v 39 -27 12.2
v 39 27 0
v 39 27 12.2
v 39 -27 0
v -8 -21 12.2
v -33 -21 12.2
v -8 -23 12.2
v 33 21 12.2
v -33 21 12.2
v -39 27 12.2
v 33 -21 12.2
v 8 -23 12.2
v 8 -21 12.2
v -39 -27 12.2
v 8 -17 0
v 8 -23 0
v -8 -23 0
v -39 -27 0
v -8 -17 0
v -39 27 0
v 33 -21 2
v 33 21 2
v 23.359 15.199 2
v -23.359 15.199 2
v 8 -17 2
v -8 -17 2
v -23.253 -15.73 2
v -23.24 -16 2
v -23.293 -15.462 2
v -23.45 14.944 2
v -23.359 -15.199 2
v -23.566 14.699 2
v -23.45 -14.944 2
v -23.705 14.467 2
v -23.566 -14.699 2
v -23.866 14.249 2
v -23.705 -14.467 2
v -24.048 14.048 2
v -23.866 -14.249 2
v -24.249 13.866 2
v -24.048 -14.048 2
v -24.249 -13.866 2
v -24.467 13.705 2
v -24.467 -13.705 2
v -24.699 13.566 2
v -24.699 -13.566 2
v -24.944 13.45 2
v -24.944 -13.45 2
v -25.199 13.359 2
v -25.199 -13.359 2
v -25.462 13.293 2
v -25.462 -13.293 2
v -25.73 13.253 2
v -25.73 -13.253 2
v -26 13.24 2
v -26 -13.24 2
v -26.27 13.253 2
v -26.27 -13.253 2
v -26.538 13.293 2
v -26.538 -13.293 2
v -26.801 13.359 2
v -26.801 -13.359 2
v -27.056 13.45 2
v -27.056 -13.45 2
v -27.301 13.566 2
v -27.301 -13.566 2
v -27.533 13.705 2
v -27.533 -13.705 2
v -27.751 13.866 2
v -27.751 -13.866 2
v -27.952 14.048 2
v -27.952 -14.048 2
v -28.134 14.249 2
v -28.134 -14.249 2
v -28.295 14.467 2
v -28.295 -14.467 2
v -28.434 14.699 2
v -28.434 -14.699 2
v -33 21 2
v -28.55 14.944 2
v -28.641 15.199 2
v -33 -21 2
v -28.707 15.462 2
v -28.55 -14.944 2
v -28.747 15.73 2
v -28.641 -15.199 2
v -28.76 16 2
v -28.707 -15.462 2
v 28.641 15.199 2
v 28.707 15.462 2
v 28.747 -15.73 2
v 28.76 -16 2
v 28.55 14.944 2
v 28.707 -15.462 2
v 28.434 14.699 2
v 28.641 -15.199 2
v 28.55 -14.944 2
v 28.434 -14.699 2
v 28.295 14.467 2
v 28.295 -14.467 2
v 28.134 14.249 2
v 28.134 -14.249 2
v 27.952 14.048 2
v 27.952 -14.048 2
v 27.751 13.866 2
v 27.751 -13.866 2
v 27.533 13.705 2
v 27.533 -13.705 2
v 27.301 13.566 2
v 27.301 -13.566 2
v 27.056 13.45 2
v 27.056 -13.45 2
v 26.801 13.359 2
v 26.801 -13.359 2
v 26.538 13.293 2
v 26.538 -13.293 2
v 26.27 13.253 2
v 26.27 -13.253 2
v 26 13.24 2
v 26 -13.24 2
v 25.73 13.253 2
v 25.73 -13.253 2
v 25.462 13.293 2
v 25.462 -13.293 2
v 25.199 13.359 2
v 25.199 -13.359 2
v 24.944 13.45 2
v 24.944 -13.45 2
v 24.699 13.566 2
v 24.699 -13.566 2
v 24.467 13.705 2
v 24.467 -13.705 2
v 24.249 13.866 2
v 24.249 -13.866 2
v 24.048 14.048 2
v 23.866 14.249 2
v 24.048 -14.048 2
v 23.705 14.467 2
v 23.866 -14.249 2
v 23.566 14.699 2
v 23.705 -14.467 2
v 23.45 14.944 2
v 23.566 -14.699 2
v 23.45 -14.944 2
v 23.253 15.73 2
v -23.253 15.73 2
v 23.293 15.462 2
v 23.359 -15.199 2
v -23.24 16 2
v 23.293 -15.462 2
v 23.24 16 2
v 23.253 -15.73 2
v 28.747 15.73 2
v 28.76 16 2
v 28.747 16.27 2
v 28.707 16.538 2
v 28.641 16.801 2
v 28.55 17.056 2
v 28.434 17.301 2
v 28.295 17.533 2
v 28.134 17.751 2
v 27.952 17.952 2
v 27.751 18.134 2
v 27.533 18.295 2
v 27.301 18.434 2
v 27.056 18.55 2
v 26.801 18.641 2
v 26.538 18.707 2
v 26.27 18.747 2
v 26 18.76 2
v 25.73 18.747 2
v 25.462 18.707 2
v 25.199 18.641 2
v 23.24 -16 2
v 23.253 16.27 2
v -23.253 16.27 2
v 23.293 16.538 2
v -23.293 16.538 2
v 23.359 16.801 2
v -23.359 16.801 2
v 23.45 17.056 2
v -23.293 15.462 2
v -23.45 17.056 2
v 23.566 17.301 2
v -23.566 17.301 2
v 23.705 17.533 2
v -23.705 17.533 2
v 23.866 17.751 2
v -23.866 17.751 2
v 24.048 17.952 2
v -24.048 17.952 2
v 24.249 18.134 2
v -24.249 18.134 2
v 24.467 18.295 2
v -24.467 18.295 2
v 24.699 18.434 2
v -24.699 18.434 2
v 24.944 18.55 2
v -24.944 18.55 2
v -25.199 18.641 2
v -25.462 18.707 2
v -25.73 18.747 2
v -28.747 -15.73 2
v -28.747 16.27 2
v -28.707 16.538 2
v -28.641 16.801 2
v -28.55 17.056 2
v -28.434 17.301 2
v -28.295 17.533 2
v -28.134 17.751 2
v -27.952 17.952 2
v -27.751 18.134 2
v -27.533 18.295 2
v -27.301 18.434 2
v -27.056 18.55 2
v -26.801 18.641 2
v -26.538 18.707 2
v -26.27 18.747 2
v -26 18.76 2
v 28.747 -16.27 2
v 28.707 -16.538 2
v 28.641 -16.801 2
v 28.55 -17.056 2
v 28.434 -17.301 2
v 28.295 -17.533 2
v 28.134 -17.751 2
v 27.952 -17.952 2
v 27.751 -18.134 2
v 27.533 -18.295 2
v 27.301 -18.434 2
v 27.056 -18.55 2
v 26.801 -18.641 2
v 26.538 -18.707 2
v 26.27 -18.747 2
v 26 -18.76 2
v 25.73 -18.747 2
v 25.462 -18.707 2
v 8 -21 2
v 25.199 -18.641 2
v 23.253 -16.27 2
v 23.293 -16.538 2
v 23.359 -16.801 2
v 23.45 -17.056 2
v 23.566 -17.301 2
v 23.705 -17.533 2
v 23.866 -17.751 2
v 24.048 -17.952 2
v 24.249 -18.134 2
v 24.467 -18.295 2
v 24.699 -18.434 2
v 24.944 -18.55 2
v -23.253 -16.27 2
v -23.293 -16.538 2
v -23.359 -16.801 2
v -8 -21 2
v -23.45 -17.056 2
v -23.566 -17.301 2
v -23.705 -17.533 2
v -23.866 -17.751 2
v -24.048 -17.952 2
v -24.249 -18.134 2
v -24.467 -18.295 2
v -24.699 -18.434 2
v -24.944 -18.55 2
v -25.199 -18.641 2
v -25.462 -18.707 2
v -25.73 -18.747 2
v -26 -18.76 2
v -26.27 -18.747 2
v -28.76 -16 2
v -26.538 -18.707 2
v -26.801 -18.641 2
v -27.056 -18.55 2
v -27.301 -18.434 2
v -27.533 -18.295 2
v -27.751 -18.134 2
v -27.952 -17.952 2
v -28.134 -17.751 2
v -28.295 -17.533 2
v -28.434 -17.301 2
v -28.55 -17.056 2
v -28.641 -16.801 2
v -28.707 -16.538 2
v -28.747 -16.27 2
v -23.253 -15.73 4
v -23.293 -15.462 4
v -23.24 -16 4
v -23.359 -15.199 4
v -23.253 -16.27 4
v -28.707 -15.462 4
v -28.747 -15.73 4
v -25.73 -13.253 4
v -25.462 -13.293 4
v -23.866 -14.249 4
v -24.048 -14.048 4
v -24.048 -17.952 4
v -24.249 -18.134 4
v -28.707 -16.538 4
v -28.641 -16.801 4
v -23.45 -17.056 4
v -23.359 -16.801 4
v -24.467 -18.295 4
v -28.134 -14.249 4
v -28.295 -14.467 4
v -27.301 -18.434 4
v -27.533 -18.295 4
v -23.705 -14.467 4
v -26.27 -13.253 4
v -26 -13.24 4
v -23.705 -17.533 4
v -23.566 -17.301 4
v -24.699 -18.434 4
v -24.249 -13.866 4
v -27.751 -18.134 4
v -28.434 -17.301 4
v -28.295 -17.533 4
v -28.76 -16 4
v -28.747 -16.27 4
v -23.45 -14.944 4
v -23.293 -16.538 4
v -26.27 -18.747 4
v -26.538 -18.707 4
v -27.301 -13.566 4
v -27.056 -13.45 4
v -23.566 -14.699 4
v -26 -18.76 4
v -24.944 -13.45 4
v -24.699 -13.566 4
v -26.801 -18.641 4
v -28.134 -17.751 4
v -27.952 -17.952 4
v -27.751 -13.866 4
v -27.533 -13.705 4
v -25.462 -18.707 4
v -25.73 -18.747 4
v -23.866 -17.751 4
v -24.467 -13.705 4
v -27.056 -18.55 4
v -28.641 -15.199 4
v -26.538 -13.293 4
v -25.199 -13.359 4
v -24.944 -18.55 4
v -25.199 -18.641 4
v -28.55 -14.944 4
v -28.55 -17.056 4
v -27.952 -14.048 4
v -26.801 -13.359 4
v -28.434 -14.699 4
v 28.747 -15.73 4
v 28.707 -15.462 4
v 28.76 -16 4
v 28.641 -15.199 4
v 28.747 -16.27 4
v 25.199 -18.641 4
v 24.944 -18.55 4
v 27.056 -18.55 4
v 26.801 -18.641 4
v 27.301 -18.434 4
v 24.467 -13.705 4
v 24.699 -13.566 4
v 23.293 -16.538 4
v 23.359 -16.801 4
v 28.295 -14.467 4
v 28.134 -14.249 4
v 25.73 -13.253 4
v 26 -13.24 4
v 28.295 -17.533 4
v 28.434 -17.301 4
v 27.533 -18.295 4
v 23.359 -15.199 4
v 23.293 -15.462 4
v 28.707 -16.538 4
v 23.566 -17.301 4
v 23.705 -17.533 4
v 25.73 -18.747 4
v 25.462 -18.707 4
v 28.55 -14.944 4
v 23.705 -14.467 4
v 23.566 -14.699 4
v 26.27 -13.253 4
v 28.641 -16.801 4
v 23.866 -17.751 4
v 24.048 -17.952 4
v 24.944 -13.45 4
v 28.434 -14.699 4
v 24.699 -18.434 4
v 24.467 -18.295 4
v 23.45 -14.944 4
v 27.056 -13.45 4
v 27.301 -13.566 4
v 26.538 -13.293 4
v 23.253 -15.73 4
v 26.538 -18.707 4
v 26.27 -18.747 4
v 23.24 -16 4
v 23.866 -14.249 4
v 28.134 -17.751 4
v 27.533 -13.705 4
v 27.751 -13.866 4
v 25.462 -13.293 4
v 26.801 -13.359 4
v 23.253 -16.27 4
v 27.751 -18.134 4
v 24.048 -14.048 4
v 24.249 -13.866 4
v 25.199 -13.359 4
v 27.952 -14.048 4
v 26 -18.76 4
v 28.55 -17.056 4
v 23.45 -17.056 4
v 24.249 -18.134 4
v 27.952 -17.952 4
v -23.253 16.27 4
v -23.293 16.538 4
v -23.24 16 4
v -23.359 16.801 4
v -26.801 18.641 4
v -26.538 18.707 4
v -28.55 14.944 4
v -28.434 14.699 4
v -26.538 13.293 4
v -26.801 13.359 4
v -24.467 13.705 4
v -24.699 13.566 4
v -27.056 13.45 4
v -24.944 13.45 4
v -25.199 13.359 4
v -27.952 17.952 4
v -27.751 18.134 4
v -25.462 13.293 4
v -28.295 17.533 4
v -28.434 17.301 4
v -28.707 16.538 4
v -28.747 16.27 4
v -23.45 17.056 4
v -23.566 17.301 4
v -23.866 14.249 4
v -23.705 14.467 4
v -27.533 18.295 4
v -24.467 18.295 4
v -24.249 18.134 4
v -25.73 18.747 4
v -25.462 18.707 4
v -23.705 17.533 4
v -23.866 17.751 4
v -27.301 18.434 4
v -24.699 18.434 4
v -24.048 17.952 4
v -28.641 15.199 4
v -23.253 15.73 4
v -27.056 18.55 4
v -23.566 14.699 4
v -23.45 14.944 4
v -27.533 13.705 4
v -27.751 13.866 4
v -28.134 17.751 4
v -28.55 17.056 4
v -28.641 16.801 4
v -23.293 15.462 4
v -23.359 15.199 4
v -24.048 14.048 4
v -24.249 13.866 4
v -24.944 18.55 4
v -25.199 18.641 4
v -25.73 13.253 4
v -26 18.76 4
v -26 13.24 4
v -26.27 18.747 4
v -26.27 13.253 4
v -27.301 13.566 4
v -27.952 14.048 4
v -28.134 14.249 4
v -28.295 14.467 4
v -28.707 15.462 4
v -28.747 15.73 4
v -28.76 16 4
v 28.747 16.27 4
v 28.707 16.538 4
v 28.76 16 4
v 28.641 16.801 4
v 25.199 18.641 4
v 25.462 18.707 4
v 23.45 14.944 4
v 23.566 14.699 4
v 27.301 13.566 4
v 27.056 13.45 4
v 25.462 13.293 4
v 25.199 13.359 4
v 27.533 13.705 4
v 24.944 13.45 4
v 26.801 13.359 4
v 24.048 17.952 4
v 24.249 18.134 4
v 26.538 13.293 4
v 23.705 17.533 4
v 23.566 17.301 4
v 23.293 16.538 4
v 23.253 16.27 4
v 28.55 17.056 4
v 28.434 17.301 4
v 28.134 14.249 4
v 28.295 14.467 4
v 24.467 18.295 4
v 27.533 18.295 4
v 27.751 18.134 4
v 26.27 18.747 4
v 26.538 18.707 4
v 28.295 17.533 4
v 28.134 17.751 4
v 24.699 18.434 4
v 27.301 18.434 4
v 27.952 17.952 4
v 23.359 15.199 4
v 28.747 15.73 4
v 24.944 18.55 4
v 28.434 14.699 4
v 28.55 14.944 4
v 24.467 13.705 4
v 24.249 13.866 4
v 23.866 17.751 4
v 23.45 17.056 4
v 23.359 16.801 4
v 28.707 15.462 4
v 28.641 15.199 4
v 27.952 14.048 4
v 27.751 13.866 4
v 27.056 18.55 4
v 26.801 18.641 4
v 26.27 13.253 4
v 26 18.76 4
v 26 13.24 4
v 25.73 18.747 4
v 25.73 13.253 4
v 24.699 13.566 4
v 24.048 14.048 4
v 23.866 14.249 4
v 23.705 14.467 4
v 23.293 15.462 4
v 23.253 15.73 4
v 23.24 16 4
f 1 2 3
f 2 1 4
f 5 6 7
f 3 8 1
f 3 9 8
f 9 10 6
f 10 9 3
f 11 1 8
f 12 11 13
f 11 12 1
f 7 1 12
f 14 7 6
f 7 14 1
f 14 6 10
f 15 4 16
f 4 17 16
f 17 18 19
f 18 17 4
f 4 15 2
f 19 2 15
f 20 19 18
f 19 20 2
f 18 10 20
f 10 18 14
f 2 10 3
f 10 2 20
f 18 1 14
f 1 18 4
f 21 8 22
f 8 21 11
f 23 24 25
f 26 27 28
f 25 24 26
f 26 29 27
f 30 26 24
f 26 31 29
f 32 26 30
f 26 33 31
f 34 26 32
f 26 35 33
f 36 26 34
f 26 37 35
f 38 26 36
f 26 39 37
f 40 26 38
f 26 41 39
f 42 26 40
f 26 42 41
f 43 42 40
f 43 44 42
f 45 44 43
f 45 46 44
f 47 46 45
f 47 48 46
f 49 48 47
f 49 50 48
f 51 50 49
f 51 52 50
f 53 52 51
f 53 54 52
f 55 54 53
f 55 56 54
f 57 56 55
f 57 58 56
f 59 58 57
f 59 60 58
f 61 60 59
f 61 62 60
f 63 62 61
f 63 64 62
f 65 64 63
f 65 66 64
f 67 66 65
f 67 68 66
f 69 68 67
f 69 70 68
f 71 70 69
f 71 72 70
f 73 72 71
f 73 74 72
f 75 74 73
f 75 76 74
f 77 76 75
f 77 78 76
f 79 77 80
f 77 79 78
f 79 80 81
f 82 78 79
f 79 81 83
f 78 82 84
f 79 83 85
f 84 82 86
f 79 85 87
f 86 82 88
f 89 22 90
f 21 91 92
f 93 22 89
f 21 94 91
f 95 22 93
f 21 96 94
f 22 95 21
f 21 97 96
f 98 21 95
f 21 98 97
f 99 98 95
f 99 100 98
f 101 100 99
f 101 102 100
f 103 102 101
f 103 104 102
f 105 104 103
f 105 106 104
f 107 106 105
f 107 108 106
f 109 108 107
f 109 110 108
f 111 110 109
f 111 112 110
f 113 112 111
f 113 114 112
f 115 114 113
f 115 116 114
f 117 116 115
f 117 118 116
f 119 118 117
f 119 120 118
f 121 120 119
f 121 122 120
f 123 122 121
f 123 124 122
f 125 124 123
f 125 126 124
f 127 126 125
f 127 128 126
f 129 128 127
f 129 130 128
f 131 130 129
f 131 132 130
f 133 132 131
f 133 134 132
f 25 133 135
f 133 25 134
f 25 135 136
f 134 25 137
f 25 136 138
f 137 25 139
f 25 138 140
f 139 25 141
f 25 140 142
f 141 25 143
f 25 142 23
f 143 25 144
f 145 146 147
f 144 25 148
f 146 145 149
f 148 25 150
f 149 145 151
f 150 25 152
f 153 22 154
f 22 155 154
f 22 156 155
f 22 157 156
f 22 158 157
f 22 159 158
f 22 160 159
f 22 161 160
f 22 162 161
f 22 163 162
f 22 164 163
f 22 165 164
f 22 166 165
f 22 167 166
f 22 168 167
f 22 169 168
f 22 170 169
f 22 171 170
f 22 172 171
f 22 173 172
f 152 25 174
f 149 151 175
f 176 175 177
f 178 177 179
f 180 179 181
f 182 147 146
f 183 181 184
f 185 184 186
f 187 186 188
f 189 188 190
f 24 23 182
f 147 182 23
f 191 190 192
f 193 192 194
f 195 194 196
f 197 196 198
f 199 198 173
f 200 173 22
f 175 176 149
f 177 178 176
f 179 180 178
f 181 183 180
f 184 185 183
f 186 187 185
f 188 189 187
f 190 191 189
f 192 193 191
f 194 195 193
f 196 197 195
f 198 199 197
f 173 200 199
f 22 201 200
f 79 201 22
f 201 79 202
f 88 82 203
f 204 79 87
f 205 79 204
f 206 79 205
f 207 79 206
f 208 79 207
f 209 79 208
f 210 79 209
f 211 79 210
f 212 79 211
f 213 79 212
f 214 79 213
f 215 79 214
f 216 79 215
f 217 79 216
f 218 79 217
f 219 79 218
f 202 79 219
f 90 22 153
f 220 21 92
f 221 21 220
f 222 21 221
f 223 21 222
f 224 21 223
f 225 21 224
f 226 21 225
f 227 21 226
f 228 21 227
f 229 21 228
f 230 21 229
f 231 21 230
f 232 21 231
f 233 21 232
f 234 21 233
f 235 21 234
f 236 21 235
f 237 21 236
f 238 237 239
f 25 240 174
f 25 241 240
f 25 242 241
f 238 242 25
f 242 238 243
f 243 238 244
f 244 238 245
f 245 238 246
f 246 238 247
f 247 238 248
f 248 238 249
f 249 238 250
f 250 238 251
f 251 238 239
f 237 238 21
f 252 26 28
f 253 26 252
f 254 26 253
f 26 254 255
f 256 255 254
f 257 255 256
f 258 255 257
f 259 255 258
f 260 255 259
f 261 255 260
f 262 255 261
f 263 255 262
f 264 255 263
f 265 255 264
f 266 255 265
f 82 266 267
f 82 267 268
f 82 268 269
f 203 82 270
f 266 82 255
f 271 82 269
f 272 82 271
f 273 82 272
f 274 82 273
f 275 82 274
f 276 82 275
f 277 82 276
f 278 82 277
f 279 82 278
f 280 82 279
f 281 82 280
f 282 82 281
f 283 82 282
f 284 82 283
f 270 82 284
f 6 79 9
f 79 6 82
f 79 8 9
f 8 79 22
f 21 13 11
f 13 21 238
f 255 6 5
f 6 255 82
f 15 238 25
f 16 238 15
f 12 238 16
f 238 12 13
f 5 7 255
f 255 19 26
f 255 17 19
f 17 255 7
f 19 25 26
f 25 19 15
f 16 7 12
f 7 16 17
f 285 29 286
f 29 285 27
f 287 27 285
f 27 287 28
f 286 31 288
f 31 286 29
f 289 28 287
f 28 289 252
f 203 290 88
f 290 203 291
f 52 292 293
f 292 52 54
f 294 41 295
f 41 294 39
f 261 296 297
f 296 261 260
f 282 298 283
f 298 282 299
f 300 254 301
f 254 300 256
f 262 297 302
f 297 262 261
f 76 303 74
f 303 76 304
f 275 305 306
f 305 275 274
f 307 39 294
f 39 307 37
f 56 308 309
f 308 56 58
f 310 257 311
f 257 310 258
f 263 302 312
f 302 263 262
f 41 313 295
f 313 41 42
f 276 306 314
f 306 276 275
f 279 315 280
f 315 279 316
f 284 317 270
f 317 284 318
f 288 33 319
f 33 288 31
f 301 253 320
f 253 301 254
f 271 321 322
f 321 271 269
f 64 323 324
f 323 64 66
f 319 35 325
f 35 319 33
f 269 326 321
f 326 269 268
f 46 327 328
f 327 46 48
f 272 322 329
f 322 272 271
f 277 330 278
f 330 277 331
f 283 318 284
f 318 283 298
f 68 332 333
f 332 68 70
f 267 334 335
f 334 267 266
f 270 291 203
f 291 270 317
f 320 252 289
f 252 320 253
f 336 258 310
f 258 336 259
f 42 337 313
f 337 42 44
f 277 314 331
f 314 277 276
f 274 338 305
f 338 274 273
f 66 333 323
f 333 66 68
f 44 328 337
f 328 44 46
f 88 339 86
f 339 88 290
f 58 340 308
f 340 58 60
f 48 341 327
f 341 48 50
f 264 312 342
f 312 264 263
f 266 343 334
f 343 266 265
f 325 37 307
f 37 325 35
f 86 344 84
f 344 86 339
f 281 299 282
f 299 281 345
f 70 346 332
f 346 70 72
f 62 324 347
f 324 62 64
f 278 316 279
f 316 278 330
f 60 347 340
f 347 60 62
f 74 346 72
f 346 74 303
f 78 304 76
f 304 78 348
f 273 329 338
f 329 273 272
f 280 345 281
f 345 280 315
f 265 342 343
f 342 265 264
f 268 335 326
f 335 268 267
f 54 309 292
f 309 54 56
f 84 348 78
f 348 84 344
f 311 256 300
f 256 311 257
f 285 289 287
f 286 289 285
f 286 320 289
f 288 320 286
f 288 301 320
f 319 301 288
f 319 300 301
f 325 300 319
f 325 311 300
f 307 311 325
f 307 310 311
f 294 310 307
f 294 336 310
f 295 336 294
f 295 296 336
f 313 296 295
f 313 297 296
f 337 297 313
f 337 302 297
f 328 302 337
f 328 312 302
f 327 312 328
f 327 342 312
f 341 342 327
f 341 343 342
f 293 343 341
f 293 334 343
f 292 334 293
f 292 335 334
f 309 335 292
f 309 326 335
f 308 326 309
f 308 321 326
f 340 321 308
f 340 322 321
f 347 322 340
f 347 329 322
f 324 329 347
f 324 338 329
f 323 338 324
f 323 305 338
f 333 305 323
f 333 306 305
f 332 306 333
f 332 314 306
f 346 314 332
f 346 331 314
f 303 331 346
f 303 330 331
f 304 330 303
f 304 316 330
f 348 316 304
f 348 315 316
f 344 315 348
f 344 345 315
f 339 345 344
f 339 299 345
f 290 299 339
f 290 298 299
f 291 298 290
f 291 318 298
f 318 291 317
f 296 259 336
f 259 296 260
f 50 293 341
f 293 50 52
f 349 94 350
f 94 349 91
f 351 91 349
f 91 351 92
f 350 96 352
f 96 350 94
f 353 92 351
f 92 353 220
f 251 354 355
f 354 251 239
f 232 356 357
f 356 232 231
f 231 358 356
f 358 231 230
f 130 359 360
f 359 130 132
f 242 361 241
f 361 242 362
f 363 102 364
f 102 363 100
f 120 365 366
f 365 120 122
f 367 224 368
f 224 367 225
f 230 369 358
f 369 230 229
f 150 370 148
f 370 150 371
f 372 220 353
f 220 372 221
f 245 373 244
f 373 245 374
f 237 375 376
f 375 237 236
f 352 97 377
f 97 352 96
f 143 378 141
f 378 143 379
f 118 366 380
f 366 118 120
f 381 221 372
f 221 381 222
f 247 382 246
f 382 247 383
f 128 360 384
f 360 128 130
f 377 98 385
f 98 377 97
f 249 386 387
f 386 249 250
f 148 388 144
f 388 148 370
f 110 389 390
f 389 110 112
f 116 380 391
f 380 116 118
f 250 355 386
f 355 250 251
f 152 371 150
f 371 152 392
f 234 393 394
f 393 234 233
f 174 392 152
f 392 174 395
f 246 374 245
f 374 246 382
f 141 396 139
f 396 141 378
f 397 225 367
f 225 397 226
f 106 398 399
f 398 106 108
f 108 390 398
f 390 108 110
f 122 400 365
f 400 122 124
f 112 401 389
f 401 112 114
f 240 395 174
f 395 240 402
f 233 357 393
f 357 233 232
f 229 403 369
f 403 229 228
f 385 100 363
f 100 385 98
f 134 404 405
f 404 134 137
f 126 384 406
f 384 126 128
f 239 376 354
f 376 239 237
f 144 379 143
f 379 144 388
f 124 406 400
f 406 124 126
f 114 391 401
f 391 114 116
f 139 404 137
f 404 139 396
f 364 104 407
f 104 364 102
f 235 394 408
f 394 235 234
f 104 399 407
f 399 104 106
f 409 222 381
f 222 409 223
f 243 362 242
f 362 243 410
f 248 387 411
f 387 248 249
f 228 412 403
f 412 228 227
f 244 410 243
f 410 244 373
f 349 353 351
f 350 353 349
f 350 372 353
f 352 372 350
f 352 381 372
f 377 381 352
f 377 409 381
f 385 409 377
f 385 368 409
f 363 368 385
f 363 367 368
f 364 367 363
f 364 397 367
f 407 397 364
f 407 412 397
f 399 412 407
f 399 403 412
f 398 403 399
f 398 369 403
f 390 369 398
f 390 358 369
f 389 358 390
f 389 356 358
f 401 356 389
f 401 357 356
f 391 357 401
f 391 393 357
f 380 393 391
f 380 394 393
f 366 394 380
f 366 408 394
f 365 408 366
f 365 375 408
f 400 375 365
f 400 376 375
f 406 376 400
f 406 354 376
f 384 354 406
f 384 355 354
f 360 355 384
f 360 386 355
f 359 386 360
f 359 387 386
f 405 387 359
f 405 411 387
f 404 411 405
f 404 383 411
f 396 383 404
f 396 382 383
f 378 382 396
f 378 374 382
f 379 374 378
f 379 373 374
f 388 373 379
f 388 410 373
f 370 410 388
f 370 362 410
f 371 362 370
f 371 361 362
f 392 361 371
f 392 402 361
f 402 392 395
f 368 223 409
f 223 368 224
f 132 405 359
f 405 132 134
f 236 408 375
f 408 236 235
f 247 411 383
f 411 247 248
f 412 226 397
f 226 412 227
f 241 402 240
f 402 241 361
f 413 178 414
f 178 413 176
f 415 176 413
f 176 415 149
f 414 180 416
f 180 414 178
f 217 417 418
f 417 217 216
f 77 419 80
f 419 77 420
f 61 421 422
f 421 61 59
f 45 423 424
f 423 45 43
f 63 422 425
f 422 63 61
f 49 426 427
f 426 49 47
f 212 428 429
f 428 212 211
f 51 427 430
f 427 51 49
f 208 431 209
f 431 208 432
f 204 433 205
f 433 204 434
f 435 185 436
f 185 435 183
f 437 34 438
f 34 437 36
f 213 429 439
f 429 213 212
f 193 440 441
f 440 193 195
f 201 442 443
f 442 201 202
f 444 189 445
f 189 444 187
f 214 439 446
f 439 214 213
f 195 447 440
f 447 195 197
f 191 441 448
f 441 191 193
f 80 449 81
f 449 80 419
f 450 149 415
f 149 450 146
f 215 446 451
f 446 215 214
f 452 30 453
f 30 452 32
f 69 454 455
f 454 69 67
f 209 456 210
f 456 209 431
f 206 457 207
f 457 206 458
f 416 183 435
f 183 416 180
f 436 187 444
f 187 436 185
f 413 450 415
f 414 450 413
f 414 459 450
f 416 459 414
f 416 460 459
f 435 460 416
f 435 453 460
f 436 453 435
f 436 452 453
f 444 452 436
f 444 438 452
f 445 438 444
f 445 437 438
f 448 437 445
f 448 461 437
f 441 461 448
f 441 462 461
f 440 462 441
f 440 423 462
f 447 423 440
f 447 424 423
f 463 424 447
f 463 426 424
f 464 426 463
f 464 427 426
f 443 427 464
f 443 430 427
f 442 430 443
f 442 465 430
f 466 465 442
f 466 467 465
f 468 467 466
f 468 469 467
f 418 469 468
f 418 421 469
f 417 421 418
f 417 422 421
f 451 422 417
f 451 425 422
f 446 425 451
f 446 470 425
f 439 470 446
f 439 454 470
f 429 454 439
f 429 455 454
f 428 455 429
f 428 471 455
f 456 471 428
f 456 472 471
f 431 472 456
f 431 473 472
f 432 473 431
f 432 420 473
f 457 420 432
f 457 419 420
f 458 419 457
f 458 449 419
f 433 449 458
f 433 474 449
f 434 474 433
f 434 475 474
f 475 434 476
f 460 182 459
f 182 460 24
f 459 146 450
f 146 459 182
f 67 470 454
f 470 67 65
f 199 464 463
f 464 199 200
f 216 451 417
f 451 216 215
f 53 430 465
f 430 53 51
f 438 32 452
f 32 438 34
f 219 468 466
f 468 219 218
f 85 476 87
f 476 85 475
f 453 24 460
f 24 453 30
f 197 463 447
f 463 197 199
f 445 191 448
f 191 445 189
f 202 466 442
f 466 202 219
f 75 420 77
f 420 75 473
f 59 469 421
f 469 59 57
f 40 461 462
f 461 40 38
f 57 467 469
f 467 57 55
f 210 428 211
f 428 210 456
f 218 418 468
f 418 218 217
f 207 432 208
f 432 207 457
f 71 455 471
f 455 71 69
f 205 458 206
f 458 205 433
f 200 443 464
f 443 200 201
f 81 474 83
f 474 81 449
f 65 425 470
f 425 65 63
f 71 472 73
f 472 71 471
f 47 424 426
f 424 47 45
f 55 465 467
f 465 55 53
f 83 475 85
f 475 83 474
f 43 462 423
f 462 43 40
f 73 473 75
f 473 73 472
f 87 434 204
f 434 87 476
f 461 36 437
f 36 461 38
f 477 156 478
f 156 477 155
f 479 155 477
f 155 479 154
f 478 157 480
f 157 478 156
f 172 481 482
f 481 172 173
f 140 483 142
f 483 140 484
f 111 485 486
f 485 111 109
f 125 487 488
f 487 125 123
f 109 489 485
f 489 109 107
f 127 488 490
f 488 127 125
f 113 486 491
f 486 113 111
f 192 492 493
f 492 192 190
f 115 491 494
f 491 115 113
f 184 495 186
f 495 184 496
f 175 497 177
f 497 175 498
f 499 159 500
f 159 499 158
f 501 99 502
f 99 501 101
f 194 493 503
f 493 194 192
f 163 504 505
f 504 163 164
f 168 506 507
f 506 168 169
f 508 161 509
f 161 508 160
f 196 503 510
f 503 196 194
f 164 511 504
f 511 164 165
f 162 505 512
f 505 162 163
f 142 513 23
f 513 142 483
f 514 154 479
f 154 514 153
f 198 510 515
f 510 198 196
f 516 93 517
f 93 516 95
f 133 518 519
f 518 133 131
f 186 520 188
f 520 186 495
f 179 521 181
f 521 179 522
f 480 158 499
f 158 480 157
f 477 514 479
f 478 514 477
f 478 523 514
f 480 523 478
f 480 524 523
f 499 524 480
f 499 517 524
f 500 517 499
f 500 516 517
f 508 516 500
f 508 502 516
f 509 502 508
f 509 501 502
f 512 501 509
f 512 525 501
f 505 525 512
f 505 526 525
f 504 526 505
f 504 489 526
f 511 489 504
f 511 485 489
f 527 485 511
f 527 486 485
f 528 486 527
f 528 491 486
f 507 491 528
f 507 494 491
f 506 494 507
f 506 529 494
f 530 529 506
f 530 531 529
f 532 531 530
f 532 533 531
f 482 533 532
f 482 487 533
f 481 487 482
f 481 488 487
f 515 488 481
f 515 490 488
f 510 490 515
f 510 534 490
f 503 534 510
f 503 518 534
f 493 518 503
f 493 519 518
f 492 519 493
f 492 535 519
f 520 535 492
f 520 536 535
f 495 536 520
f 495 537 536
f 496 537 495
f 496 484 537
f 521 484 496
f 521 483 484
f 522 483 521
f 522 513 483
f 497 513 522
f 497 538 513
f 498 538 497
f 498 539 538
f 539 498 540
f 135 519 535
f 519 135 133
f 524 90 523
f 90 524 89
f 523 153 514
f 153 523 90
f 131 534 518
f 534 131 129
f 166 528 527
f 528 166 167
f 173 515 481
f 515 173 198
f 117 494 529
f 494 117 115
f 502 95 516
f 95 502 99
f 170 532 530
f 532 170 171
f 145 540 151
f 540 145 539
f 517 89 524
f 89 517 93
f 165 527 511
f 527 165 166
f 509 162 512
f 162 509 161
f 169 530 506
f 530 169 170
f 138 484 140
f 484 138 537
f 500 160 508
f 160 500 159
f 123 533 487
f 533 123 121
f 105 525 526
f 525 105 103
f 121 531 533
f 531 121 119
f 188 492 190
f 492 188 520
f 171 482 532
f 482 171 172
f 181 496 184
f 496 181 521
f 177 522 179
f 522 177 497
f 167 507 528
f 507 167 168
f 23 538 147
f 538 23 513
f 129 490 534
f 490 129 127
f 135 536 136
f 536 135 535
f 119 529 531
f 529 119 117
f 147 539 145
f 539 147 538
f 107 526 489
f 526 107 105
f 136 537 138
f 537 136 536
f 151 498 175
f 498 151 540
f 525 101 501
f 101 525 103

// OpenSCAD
// file: 01_kicad_parameters.scad
// KiCad-generated OpenSCAD parameter handoff.
// Source: 01_kicad_mechanical_map.csv and 01_kicad_board.kicad_pcb.
$fn = 64;
board = [66.000, 42.000, 1.000];
enclosure = [78.000, 54.000, 12.200];
wall = 2.000;
lid_clearance = 1.200;

// [reference, kind, x_mm, y_mm, height_mm, keepout_radius_mm, role]
mechanical_features = [
  ["U1", "OPTICAL_ASIC", 0.000, 0.000, 0.800, 6.000, "component_keepout"],
  ["LED1", "EMITTER", -16.000, 0.000, 1.500, 4.000, "component_keepout"],
  ["PD1", "PHOTODIODE", 16.000, 0.000, 1.200, 4.000, "component_keepout"],
  ["J1", "FLEX", 0.000, -20.000, 2.800, 8.000, "connector_window"],
  ["FID1", "FIDUCIAL", -24.000, 14.000, 0.100, 2.000, "component_keepout"],
  ["MH1", "MOUNTING_HOLE", -26.000, -16.000, 0.000, 1.200, "standoff_axis"],
  ["MH2", "MOUNTING_HOLE", 26.000, -16.000, 0.000, 1.200, "standoff_axis"],
  ["MH3", "MOUNTING_HOLE", -26.000, 16.000, 0.000, 1.200, "standoff_axis"],
  ["MH4", "MOUNTING_HOLE", 26.000, 16.000, 0.000, 1.200, "standoff_axis"],
];

standoff_axes = [for (f = mechanical_features) if (f[6] == "standoff_axis") [f[2], f[3], f[5], f[0]]];
interface_features = [for (f = mechanical_features) if (f[6] == "connector_window" || f[6] == "access_bore" || f[6] == "antenna_keepout") [f[2], f[3], f[5], f[0], f[6]]];
// main file
// Task 07: Optical encoder readhead alignment carrier
// OpenSCAD stage consumes the KiCad-generated 01_kicad_parameters.scad handoff.
include <01_kicad_parameters.scad>;

module standoff(x, y) {
  translate([x, y, board[2]]) cylinder(d=5.520, h=wall + board[2]);
}
module keepout_window(x, y, r) {
  translate([x, y, enclosure[2]/2]) cube([2*r, wall*3, enclosure[2]], center=true);
}
module enclosure_shell() {
  difference() {
    translate([-enclosure[0]/2, -enclosure[1]/2, 0]) cube(enclosure);
    translate([-board[0]/2, -board[1]/2, wall]) cube([board[0], board[1], enclosure[2]]);
    // J1 FLEX side/service keepout
    keepout_window(0.000, -20.000, 8.000);
  }
}
// MH1 copied from KiCad at (-26.000, -16.000)
// MH2 copied from KiCad at (26.000, -16.000)
// MH3 copied from KiCad at (-26.000, 16.000)
// MH4 copied from KiCad at (26.000, 16.000)
union() {
  enclosure_shell();
  standoff(-26.000, -16.000);
  standoff(26.000, -16.000);
  standoff(-26.000, 16.000);
  standoff(26.000, 16.000);
}
